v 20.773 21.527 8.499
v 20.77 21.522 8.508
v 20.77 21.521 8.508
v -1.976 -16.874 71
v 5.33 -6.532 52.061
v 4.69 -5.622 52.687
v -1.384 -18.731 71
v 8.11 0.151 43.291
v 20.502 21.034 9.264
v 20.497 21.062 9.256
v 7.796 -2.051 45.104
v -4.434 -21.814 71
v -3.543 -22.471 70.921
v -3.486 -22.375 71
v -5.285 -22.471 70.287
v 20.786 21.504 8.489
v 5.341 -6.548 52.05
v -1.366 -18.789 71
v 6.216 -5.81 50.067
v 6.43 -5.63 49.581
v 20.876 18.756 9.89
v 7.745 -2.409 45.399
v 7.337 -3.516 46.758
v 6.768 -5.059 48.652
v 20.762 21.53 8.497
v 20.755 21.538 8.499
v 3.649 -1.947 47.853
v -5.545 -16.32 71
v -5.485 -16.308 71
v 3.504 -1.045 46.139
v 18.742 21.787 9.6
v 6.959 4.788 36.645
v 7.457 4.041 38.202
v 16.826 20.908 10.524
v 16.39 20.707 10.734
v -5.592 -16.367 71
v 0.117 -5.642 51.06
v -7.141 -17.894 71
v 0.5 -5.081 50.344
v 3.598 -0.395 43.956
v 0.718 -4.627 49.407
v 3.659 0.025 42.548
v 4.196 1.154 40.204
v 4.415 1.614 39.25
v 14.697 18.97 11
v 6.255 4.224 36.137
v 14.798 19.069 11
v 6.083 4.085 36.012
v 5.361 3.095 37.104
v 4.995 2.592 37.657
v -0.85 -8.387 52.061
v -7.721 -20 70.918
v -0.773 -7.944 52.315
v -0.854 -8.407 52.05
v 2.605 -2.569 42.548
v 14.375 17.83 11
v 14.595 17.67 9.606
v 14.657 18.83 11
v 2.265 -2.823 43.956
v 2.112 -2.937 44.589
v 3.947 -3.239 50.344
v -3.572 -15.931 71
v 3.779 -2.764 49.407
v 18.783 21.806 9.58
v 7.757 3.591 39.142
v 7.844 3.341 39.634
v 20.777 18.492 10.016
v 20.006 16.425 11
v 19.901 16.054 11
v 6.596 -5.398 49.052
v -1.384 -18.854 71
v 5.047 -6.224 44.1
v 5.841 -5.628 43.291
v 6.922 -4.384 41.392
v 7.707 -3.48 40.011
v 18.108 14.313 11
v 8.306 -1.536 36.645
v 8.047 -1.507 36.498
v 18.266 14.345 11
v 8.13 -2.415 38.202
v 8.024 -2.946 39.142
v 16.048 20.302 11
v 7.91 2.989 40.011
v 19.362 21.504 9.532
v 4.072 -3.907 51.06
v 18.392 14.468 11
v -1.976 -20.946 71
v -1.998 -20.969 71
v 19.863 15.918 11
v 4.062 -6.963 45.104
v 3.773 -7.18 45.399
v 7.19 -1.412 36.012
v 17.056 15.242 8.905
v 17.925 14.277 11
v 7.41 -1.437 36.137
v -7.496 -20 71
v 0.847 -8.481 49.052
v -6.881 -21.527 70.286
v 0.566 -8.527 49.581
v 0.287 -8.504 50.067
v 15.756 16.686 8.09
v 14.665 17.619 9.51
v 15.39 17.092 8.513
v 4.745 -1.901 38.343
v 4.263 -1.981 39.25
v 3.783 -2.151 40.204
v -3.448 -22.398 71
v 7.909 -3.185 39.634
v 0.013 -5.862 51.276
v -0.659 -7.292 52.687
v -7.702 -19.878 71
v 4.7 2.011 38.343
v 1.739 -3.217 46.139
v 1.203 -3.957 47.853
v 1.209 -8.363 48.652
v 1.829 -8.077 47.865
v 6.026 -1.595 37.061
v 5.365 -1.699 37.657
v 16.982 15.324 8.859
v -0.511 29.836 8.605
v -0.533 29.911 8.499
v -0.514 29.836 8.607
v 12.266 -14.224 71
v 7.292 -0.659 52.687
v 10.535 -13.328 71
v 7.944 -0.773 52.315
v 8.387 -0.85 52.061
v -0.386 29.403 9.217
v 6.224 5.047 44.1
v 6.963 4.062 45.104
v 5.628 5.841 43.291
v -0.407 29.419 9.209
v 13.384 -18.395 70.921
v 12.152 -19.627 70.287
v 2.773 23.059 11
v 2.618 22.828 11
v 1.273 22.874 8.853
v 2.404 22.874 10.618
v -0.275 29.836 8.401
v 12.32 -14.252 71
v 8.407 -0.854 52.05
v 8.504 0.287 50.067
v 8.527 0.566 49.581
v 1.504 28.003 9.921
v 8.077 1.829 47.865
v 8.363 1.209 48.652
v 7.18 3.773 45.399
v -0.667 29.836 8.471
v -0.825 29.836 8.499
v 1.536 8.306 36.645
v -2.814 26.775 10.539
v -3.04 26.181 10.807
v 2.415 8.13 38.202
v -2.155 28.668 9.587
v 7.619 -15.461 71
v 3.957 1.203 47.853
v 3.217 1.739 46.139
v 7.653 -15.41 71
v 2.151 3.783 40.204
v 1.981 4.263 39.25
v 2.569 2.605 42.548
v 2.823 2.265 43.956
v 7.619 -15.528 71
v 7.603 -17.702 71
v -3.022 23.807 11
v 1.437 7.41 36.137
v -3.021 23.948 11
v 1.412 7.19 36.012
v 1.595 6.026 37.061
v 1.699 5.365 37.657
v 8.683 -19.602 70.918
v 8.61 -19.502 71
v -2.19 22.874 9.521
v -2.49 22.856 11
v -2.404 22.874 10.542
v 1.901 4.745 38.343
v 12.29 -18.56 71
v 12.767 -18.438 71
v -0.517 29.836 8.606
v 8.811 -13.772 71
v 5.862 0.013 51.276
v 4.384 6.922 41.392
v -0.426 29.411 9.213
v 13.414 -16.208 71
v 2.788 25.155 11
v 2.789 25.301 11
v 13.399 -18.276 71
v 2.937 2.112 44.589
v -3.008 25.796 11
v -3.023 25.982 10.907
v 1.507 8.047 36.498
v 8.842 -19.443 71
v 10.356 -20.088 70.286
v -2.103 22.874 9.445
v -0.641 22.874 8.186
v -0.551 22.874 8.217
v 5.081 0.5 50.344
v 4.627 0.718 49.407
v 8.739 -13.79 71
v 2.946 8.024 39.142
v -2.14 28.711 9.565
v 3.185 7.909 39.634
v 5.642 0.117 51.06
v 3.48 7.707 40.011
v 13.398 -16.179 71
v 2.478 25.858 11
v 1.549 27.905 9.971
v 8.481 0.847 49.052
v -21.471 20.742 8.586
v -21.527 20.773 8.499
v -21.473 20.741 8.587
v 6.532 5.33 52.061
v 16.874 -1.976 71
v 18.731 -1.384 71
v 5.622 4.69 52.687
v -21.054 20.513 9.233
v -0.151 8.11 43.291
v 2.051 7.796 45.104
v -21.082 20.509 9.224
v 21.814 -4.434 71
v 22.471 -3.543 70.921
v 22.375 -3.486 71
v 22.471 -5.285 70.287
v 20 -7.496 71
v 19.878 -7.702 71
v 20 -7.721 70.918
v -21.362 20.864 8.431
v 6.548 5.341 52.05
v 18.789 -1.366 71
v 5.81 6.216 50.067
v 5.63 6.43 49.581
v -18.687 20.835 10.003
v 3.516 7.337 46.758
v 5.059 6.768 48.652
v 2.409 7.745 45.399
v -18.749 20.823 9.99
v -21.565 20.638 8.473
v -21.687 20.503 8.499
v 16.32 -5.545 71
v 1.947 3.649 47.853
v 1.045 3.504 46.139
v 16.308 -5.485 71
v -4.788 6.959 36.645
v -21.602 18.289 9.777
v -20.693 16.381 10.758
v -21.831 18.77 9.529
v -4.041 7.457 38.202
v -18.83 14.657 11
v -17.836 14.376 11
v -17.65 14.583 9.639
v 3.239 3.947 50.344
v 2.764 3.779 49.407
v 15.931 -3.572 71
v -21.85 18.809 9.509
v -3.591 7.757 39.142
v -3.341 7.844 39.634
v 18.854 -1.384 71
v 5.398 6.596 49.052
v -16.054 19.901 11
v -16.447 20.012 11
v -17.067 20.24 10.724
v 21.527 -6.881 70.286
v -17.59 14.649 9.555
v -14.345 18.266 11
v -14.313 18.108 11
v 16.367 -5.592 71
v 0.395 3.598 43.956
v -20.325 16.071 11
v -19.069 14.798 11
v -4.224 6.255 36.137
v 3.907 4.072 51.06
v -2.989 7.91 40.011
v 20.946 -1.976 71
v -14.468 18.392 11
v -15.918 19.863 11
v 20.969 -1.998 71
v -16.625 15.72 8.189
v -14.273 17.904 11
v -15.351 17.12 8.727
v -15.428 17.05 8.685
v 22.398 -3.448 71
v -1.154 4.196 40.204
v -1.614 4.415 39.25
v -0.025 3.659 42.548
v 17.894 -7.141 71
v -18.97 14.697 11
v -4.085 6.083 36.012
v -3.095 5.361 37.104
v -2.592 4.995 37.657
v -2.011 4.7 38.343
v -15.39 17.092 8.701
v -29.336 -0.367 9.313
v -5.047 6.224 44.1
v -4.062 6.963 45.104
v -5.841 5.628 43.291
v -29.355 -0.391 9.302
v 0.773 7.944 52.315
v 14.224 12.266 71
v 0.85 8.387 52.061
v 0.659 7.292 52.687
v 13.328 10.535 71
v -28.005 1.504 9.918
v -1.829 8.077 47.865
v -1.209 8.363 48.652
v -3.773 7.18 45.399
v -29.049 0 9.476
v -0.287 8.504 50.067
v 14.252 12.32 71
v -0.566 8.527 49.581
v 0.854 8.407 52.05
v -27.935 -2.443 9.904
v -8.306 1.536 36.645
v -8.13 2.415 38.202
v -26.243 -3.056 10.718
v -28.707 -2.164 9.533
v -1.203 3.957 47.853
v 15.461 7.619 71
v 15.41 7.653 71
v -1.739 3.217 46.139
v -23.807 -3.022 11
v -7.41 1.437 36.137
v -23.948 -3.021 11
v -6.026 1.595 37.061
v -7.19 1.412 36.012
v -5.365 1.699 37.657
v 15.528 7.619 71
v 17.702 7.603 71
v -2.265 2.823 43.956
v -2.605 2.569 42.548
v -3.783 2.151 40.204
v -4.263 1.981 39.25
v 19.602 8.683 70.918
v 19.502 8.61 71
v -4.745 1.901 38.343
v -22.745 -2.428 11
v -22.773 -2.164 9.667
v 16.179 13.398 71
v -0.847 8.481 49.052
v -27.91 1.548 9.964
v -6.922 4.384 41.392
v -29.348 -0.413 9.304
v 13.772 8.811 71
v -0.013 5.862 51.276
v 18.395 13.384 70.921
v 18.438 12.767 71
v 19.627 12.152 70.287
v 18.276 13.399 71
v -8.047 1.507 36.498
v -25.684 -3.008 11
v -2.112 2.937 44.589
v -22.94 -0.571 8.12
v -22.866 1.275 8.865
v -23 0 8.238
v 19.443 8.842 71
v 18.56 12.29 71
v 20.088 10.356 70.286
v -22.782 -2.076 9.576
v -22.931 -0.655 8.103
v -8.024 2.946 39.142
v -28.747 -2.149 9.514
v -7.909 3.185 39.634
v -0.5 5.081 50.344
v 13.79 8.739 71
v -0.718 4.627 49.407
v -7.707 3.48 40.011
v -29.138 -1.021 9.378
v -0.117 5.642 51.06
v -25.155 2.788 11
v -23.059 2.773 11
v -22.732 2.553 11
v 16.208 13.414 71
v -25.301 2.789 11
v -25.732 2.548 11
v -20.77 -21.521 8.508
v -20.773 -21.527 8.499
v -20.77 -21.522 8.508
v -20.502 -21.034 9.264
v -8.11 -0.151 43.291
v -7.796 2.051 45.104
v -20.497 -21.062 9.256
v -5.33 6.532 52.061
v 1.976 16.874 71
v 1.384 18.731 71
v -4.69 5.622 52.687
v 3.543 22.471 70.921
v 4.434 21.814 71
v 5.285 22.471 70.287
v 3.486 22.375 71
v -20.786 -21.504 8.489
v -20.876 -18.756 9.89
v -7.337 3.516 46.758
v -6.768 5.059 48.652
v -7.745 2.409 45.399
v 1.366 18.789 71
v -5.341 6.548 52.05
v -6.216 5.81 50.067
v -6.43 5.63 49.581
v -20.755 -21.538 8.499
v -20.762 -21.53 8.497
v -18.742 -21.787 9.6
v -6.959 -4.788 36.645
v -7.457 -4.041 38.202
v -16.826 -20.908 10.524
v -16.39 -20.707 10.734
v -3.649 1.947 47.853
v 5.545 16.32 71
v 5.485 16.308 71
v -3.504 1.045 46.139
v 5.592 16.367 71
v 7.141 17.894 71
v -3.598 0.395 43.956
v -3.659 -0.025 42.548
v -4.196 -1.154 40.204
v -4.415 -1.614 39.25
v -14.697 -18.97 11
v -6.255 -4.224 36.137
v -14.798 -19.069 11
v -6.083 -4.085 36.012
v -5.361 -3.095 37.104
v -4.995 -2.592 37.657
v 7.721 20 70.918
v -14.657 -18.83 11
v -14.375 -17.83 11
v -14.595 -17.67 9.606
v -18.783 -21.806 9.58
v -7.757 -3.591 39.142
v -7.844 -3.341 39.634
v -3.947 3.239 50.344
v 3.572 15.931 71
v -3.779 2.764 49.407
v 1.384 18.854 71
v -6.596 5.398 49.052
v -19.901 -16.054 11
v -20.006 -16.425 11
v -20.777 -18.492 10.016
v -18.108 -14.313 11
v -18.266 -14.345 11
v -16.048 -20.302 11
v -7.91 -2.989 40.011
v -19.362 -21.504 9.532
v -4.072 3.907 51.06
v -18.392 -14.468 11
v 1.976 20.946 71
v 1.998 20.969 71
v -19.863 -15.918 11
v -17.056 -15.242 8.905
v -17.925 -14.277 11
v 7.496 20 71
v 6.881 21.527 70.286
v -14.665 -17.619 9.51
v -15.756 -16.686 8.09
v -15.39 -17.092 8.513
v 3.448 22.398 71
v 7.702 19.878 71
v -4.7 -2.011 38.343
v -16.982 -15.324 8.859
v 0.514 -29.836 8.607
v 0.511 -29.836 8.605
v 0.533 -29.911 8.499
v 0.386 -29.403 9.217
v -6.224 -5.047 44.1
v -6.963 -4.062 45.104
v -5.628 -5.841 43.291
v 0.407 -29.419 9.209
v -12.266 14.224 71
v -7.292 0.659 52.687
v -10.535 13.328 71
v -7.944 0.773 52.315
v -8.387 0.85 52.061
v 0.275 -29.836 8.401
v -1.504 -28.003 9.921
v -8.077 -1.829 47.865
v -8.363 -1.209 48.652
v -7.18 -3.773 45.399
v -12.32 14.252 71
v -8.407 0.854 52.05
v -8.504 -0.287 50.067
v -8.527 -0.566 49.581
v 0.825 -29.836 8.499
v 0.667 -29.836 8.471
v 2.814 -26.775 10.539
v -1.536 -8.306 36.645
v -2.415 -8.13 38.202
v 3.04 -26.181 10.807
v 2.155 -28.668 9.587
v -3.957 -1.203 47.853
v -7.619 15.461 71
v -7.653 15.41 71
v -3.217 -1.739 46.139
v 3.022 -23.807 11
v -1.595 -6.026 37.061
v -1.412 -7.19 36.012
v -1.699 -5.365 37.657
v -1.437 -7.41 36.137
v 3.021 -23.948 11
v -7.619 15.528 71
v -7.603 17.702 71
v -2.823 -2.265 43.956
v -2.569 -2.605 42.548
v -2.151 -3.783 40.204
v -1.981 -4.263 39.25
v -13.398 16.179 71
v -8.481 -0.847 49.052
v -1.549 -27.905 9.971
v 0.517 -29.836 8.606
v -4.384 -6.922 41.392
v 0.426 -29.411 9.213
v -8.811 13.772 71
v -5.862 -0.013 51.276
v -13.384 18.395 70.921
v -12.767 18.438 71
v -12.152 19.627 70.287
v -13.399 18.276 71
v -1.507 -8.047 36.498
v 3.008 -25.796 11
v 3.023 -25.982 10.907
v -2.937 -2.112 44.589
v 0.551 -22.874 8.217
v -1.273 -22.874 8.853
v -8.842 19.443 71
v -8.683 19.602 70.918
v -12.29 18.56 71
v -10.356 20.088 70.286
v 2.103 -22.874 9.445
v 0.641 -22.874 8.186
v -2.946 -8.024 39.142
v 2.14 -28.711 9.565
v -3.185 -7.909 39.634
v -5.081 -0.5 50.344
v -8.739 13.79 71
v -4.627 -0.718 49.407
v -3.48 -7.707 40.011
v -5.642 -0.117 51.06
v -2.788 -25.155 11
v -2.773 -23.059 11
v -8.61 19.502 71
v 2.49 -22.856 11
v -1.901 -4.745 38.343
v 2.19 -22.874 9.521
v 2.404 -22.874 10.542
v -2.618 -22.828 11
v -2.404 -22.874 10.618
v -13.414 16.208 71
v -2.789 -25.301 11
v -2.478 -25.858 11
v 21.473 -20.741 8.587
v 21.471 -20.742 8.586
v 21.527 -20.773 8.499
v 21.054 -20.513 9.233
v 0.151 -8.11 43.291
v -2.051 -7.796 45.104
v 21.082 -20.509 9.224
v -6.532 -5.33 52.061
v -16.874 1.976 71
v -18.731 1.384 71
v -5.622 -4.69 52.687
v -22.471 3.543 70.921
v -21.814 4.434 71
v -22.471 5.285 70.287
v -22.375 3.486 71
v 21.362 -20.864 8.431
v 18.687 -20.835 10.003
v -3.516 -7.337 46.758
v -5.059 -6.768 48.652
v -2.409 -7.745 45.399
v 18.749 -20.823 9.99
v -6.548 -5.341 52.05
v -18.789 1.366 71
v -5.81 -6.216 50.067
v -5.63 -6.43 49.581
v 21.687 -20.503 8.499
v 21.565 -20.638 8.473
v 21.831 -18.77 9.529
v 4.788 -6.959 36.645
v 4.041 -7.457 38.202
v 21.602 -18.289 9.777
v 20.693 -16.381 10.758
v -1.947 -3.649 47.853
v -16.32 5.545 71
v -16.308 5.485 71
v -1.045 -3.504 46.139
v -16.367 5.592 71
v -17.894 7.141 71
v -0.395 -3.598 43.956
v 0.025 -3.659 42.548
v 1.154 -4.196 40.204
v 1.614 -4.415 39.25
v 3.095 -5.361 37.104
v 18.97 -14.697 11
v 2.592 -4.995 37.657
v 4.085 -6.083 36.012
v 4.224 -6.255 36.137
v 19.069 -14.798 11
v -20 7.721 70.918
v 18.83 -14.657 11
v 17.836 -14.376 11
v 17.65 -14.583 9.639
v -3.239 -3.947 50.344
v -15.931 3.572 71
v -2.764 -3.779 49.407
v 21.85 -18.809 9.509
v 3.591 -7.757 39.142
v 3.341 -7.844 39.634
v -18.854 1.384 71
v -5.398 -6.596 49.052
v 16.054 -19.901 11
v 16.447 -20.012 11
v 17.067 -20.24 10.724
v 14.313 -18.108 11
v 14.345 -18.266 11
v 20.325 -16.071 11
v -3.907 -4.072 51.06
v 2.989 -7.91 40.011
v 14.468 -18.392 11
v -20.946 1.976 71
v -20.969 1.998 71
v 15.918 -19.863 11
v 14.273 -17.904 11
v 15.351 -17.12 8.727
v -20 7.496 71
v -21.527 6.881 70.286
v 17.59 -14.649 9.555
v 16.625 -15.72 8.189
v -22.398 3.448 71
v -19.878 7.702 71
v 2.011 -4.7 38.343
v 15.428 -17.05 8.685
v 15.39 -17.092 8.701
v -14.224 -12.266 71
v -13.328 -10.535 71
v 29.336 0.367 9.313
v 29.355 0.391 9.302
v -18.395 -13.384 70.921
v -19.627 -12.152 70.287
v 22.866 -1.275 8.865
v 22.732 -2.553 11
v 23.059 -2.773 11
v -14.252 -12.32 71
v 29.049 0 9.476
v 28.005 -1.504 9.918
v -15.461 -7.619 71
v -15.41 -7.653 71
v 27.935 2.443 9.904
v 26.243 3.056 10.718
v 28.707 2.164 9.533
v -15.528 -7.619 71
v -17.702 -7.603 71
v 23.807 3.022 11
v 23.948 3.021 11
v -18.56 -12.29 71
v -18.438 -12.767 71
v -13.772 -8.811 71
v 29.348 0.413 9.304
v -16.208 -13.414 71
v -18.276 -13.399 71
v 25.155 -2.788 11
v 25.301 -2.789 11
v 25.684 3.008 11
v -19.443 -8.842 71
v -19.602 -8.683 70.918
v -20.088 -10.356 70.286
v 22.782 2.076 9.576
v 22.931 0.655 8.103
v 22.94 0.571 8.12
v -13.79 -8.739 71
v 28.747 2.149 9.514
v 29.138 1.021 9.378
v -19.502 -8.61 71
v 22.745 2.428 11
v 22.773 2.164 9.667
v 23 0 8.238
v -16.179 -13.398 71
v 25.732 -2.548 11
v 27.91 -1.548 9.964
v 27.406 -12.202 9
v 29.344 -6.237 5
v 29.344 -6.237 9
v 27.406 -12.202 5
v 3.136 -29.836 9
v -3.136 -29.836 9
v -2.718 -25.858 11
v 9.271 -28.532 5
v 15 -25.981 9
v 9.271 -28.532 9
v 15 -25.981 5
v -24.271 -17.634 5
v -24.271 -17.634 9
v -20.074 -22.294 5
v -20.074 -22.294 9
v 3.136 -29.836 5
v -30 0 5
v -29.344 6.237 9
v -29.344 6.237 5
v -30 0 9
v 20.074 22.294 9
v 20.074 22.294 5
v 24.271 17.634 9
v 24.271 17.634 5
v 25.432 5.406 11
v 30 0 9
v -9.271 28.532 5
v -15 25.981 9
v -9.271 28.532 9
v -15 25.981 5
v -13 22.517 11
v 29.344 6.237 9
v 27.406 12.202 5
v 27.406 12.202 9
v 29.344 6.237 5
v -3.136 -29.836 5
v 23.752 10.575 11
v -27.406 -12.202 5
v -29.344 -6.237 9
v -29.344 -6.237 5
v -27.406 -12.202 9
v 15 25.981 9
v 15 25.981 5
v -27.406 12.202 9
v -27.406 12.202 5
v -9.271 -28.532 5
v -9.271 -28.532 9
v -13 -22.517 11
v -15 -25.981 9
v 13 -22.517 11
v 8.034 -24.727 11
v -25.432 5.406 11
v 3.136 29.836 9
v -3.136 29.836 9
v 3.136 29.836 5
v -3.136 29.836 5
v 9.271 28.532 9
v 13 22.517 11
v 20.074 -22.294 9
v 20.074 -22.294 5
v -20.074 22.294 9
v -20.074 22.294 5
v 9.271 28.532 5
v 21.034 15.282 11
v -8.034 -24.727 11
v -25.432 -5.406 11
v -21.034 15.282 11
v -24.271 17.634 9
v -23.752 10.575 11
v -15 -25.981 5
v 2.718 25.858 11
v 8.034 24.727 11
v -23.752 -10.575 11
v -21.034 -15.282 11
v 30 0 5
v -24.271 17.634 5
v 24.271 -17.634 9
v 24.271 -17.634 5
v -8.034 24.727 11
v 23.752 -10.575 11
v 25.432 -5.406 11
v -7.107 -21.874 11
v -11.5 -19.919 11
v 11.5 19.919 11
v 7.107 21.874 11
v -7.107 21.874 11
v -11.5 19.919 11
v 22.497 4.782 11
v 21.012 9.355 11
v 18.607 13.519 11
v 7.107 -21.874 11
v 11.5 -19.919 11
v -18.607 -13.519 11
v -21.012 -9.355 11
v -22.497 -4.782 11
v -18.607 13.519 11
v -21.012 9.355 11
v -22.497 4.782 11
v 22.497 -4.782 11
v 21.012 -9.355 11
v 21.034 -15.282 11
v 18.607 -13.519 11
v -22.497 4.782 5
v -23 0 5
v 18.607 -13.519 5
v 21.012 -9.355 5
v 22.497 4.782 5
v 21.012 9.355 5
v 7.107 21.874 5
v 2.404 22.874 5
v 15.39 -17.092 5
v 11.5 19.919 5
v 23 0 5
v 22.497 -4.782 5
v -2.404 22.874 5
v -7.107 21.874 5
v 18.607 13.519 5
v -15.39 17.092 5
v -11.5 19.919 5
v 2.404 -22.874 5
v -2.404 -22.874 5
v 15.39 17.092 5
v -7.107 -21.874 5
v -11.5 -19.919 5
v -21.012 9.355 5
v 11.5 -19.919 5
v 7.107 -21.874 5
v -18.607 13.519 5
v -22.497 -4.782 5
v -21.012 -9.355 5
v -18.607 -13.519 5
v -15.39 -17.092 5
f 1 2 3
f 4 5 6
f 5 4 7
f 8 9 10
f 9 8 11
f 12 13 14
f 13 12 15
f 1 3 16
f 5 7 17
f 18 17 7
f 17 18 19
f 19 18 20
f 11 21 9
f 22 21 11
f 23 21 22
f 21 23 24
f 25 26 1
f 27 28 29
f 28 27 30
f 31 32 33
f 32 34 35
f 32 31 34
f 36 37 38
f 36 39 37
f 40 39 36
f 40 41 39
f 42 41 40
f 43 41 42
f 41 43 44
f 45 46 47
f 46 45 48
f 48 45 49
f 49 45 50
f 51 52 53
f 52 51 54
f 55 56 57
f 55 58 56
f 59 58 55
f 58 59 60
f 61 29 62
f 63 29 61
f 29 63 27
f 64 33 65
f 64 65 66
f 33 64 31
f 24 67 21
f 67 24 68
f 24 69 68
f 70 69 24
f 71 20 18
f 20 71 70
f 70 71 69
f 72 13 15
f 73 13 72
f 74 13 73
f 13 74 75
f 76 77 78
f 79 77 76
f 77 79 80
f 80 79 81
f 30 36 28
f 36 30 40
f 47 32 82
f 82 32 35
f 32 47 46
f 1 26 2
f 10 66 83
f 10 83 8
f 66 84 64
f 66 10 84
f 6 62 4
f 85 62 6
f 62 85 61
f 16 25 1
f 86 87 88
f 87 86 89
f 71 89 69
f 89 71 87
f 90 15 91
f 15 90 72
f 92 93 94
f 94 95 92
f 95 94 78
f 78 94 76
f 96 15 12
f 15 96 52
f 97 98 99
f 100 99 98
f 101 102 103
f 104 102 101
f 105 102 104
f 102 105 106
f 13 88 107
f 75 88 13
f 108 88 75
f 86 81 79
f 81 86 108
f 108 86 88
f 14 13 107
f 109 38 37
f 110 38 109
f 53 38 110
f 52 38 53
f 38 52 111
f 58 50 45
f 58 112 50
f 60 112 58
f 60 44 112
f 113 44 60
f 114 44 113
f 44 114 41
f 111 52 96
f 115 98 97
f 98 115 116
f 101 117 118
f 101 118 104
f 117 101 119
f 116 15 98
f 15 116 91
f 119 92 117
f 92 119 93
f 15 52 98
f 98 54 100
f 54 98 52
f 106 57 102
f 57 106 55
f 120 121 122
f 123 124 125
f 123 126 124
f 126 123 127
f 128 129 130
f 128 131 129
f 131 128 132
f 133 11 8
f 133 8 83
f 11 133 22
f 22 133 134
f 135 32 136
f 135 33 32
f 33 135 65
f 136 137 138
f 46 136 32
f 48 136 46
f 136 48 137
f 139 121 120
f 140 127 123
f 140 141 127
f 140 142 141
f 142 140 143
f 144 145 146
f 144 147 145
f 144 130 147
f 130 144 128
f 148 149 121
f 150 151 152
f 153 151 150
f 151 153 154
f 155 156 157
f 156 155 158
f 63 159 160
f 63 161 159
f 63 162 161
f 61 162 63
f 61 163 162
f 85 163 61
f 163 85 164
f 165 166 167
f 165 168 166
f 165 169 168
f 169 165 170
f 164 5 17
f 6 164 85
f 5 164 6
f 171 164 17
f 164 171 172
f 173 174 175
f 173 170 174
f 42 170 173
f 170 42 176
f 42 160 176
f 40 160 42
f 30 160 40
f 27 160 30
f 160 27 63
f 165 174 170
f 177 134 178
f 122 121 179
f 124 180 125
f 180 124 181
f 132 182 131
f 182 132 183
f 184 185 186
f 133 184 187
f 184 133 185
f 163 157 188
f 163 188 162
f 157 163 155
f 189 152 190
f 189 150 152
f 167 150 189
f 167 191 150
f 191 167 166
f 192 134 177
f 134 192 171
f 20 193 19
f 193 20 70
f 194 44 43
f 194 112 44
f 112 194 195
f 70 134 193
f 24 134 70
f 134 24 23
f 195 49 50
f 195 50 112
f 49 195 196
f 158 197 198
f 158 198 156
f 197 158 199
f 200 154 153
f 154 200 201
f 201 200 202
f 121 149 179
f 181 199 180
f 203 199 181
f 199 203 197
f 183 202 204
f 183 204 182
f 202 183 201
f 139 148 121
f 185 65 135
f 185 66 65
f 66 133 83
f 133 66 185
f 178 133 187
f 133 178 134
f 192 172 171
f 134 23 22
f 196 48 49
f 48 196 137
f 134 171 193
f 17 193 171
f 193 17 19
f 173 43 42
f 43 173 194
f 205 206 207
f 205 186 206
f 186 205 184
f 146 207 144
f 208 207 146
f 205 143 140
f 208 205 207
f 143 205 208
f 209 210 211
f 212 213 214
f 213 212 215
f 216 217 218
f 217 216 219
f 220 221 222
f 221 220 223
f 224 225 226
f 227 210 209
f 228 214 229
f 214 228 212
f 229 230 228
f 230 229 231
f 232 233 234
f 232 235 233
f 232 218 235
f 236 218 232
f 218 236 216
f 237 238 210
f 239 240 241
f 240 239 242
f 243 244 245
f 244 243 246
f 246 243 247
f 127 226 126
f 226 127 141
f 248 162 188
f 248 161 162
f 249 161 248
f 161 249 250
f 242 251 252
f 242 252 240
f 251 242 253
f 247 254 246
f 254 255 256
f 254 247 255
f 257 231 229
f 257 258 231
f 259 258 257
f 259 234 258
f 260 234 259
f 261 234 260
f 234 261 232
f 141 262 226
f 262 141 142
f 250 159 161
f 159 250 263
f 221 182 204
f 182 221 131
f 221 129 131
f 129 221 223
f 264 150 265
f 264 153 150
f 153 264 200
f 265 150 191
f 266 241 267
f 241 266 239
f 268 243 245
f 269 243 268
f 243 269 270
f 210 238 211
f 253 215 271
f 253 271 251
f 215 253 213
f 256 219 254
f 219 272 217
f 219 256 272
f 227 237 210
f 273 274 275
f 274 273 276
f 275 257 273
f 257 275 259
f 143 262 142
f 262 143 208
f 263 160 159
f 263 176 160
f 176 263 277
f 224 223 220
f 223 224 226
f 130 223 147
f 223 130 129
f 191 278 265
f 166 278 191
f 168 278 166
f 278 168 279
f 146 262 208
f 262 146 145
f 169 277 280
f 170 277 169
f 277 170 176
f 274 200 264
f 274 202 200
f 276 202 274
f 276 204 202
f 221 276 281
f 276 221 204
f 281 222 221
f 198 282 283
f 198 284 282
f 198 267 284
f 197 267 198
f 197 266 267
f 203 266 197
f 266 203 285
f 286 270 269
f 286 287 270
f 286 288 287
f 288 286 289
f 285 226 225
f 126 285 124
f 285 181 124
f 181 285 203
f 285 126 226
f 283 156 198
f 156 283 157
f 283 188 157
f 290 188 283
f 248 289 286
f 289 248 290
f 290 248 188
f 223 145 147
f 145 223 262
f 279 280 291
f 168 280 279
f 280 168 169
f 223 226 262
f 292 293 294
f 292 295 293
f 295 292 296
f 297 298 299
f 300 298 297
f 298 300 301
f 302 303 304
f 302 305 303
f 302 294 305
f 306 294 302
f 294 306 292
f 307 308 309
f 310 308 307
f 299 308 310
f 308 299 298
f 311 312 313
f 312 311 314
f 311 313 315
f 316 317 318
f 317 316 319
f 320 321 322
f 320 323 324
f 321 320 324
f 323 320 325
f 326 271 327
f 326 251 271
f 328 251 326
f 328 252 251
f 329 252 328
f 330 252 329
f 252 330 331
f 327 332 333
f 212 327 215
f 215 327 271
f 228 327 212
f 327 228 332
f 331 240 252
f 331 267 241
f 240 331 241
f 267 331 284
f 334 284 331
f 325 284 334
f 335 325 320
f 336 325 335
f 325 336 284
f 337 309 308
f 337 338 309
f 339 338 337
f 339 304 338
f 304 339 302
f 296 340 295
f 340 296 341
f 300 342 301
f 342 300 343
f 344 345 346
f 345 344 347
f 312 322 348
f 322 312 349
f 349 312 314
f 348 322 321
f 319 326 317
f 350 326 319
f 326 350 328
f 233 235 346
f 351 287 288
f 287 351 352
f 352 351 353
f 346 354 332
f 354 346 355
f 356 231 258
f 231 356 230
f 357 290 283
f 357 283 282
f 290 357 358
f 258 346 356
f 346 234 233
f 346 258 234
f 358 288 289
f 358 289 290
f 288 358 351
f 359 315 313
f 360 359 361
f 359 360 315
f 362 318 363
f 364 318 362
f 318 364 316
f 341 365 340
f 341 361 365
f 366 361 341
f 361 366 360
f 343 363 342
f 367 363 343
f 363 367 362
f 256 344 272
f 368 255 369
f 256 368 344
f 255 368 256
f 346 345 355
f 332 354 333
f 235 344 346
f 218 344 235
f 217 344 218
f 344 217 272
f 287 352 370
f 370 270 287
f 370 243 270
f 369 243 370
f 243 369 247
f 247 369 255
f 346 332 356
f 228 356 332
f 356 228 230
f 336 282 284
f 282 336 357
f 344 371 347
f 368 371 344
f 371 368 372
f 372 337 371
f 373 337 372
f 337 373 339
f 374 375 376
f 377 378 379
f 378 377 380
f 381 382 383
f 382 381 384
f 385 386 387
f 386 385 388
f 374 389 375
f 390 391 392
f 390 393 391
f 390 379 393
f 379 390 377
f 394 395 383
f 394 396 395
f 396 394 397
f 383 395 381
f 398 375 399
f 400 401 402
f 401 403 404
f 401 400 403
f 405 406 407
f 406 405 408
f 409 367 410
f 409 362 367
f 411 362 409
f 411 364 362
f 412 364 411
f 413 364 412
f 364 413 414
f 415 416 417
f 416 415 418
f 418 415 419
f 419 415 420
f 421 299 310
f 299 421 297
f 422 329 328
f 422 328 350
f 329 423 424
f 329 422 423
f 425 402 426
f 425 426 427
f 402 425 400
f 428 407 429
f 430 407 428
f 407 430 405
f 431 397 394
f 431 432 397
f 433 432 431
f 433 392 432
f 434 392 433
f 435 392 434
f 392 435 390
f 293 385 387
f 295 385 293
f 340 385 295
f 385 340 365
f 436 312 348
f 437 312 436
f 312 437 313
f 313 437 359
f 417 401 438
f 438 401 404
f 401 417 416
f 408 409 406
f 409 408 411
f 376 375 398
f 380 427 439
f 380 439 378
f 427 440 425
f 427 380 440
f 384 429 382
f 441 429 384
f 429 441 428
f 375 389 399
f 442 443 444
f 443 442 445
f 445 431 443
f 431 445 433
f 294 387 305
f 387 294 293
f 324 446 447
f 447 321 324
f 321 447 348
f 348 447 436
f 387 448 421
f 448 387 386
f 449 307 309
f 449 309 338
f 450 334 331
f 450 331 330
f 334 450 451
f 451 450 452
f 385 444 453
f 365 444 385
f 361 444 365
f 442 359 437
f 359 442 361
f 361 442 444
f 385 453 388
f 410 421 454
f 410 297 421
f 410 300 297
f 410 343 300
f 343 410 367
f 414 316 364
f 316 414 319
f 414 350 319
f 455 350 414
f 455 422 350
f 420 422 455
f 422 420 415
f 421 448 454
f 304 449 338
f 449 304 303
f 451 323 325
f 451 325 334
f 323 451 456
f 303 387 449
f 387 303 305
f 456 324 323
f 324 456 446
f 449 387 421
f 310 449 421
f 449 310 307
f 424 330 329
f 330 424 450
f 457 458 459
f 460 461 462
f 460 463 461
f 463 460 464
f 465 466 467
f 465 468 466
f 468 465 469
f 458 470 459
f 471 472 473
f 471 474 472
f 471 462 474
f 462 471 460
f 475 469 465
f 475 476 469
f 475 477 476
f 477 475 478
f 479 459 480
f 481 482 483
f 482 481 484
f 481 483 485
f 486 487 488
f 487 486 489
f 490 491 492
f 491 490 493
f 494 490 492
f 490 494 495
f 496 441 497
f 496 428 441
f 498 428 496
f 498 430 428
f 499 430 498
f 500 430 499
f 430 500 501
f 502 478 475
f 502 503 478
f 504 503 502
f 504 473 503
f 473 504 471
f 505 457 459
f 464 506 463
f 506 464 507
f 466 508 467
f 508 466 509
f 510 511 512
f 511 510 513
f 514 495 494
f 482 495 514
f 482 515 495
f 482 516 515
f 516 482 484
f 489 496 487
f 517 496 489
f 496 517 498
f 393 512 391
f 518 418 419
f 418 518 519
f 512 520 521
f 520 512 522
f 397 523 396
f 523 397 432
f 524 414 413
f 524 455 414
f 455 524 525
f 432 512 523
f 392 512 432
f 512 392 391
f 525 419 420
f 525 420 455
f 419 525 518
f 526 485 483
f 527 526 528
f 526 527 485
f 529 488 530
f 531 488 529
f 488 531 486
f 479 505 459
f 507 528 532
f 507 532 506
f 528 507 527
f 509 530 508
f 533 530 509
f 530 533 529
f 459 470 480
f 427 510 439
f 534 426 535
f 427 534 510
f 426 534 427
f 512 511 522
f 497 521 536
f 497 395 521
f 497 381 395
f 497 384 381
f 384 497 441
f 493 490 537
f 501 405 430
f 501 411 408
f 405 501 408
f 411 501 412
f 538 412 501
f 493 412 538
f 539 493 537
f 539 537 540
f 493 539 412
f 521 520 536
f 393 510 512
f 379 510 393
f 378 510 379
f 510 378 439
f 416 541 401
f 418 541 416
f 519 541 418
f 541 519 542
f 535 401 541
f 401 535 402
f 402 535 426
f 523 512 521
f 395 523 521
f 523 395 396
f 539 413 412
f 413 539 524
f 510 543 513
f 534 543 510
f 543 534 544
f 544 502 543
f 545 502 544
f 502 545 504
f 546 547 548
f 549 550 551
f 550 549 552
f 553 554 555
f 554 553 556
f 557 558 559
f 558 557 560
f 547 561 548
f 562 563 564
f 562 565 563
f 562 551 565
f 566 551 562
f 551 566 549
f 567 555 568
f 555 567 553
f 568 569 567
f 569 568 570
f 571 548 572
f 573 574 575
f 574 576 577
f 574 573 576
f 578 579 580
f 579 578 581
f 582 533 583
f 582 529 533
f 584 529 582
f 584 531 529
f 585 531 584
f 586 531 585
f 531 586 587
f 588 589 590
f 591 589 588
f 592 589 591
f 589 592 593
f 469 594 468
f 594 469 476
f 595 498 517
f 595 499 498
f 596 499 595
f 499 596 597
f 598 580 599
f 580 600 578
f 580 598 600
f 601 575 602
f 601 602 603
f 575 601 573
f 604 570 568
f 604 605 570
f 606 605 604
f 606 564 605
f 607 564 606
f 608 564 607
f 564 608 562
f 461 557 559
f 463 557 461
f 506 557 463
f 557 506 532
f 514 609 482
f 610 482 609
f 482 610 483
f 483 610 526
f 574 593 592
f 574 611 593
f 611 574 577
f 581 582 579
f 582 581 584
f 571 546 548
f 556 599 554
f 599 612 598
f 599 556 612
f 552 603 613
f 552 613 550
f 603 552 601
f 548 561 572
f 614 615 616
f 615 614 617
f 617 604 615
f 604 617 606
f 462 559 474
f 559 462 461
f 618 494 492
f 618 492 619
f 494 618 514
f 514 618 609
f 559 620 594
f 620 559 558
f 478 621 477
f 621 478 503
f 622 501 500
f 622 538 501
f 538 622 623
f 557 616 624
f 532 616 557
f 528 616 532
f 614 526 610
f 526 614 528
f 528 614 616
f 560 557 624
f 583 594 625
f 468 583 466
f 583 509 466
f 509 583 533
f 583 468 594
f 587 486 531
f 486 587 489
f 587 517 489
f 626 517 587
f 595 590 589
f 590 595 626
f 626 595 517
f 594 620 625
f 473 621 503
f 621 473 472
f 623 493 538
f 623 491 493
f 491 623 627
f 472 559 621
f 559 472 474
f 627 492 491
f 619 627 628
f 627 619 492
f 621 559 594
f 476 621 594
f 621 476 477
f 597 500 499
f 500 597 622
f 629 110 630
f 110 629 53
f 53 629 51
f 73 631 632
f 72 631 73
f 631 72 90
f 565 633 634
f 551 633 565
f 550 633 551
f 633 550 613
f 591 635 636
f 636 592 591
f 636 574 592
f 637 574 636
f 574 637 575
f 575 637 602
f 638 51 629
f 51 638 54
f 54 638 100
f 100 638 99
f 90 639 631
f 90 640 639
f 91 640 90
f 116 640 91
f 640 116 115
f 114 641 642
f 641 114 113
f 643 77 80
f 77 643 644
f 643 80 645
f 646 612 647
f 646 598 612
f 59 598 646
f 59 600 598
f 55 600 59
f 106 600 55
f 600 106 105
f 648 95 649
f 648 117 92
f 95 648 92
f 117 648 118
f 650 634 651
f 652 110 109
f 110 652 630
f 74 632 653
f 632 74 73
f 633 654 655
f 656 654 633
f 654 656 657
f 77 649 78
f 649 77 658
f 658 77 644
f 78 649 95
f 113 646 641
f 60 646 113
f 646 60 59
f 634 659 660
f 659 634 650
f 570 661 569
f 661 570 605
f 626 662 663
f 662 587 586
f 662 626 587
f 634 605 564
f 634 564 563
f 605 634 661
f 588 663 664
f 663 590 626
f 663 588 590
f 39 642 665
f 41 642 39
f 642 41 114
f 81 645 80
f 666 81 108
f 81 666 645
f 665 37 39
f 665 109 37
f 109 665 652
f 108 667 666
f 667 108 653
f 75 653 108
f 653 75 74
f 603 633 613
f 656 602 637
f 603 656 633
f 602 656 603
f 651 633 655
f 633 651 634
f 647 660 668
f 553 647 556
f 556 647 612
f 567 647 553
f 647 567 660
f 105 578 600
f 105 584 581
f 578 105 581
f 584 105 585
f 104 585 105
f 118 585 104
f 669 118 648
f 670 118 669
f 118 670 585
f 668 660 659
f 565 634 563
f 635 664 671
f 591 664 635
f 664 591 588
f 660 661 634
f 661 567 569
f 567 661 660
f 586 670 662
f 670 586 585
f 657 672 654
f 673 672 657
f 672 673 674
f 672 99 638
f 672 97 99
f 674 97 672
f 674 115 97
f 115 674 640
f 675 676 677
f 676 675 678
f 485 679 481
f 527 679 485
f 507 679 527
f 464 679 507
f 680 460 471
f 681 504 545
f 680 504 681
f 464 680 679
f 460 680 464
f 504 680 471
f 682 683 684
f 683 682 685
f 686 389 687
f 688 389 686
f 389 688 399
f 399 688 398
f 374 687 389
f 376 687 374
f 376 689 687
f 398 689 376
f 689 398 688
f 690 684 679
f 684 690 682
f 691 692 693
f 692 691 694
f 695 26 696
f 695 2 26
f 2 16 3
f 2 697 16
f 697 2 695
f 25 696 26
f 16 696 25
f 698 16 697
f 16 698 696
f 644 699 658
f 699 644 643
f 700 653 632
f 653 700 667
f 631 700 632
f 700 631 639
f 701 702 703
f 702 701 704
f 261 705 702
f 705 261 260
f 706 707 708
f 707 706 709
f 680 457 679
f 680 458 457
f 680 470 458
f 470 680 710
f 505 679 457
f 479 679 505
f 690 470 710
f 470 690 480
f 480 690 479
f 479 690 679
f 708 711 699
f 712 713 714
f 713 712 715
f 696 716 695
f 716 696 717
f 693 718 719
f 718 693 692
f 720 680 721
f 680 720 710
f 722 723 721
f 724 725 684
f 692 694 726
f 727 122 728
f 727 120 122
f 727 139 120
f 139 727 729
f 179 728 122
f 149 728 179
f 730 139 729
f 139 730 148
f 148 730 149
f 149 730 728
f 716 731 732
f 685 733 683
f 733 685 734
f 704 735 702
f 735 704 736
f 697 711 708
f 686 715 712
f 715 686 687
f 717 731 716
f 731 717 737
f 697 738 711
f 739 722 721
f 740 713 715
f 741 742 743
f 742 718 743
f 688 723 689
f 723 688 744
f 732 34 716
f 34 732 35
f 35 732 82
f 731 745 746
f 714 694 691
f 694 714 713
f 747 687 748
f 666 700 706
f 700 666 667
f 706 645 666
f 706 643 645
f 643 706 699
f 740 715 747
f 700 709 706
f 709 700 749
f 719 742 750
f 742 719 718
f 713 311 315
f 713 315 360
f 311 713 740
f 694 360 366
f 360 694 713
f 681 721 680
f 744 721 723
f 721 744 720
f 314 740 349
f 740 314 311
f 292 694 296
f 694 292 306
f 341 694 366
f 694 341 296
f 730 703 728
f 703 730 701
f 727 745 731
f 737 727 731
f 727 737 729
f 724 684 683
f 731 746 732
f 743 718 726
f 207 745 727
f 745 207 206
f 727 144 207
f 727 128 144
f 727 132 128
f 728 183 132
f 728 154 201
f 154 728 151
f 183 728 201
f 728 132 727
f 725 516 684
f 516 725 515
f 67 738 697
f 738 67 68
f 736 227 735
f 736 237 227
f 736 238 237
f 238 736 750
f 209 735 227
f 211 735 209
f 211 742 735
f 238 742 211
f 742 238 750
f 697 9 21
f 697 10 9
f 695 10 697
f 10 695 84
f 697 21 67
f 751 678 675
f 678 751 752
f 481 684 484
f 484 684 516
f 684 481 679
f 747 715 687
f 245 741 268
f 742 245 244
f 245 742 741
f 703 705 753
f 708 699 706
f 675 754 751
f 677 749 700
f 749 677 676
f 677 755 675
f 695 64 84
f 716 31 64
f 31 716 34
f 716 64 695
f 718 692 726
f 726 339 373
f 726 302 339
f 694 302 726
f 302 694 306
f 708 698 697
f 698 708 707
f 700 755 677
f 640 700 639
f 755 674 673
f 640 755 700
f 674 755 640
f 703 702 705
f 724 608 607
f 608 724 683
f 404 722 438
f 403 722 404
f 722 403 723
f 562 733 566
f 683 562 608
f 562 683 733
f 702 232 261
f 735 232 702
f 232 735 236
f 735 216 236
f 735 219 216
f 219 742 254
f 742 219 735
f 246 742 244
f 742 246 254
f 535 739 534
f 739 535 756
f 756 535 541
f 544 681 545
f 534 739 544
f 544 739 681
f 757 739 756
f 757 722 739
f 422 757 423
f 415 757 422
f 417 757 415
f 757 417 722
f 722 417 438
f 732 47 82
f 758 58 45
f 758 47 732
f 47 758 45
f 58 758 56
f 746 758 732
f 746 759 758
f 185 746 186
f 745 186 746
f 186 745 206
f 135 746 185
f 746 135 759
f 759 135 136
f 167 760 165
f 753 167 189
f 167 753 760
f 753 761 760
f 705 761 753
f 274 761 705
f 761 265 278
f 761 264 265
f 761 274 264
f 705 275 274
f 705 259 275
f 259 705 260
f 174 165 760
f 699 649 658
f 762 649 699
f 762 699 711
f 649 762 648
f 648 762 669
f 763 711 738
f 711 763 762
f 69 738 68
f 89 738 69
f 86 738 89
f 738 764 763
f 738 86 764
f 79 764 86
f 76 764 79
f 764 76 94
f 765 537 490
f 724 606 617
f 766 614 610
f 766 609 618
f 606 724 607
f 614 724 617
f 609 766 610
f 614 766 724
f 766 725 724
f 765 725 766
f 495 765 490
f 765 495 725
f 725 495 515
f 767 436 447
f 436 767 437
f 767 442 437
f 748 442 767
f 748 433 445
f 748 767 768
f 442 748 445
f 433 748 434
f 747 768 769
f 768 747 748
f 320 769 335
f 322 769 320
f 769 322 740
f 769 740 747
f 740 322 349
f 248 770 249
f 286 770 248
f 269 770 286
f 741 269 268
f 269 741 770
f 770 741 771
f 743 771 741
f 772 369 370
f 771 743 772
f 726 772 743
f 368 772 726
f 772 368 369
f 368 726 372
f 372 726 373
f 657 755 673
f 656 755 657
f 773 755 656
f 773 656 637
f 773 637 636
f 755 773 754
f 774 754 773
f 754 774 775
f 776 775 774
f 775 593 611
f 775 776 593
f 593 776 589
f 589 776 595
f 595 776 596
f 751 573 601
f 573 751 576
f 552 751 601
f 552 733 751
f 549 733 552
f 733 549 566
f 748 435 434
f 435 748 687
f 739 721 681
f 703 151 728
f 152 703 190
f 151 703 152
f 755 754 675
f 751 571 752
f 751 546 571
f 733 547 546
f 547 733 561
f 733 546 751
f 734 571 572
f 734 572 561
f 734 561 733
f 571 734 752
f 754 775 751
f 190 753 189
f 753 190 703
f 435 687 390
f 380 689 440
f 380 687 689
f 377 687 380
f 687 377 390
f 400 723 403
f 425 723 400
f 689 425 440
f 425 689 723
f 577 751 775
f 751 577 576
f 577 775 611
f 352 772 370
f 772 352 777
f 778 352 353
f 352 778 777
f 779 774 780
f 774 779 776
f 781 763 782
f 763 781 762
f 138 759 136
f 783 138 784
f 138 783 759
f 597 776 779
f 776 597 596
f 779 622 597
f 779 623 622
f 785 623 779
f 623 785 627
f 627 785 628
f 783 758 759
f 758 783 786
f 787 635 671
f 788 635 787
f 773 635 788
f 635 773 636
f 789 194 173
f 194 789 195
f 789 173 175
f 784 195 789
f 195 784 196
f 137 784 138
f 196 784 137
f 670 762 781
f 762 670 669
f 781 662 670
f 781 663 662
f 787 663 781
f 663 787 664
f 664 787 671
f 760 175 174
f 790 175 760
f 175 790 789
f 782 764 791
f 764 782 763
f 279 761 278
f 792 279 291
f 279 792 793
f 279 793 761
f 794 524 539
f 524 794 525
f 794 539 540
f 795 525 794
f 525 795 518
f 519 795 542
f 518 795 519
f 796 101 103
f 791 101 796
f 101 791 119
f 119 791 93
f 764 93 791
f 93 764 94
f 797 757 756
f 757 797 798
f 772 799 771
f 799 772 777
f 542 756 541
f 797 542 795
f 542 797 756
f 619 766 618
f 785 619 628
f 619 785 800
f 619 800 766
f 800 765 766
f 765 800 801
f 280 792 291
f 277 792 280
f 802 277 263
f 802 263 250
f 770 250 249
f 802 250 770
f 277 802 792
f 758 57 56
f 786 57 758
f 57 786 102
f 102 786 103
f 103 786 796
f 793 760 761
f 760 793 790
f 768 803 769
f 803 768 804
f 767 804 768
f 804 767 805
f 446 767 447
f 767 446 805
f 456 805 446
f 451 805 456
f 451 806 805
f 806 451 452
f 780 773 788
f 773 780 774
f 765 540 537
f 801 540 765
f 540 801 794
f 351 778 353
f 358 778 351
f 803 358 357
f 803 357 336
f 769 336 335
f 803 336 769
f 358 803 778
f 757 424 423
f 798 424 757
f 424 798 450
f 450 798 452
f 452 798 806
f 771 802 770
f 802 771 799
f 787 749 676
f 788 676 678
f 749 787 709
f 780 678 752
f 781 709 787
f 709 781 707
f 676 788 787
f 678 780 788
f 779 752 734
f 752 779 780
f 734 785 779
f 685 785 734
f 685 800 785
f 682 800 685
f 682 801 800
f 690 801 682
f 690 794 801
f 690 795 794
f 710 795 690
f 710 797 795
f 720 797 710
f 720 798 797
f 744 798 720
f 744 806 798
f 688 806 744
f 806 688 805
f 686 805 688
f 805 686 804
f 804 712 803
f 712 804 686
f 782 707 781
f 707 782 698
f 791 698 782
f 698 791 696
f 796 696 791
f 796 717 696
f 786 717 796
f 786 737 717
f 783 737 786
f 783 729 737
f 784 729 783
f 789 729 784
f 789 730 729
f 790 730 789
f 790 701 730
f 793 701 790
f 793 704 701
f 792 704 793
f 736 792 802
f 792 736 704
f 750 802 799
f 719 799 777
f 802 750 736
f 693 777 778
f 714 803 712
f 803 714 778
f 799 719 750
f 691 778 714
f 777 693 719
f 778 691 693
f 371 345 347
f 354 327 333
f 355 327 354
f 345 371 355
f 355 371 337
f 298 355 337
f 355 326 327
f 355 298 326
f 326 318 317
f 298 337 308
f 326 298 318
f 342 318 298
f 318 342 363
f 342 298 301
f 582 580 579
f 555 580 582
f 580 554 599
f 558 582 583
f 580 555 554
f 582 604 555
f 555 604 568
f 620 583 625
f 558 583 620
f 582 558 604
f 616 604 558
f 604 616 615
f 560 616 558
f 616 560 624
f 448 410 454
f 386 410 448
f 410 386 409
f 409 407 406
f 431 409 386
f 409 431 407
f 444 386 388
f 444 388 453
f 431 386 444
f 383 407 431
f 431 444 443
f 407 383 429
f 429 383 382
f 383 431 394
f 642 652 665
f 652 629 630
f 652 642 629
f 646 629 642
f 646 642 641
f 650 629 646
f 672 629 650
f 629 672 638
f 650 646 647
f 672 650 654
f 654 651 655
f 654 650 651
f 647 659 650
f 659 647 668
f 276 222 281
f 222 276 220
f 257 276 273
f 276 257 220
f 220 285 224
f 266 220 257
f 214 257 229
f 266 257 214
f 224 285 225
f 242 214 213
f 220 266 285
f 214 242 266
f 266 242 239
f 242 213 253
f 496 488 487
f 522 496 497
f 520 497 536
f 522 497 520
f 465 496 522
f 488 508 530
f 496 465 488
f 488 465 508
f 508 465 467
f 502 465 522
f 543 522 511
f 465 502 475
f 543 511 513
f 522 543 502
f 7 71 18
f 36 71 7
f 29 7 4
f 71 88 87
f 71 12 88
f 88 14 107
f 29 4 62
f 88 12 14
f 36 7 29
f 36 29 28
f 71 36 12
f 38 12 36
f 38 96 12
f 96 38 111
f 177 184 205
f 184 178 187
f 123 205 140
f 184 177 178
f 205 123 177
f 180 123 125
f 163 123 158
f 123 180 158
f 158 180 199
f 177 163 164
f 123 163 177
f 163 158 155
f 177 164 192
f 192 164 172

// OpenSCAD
module pole() {
    rotate([0, -20, 0]) 
    translate([20, 20, 0])
    rotate([30, 0, 0]) 
        cylinder(h=80, r=3);
}

module pillar() {
    for(rot=[0 : 45 : 360]) {
        rotate([0,0,rot]) pole();
    }
}

module base() {
    difference() {
        hull() {
            cylinder(h=9, r=30);
            cylinder(h=11, r=26);
        }
        cylinder(h=12, r=23);
        cylinder(h=5, r=31);
    }
}

difference() {
    union() {
        pillar();
        base();
    }
    translate([0, 0, 71])cylinder(h=5, r=31);
}
